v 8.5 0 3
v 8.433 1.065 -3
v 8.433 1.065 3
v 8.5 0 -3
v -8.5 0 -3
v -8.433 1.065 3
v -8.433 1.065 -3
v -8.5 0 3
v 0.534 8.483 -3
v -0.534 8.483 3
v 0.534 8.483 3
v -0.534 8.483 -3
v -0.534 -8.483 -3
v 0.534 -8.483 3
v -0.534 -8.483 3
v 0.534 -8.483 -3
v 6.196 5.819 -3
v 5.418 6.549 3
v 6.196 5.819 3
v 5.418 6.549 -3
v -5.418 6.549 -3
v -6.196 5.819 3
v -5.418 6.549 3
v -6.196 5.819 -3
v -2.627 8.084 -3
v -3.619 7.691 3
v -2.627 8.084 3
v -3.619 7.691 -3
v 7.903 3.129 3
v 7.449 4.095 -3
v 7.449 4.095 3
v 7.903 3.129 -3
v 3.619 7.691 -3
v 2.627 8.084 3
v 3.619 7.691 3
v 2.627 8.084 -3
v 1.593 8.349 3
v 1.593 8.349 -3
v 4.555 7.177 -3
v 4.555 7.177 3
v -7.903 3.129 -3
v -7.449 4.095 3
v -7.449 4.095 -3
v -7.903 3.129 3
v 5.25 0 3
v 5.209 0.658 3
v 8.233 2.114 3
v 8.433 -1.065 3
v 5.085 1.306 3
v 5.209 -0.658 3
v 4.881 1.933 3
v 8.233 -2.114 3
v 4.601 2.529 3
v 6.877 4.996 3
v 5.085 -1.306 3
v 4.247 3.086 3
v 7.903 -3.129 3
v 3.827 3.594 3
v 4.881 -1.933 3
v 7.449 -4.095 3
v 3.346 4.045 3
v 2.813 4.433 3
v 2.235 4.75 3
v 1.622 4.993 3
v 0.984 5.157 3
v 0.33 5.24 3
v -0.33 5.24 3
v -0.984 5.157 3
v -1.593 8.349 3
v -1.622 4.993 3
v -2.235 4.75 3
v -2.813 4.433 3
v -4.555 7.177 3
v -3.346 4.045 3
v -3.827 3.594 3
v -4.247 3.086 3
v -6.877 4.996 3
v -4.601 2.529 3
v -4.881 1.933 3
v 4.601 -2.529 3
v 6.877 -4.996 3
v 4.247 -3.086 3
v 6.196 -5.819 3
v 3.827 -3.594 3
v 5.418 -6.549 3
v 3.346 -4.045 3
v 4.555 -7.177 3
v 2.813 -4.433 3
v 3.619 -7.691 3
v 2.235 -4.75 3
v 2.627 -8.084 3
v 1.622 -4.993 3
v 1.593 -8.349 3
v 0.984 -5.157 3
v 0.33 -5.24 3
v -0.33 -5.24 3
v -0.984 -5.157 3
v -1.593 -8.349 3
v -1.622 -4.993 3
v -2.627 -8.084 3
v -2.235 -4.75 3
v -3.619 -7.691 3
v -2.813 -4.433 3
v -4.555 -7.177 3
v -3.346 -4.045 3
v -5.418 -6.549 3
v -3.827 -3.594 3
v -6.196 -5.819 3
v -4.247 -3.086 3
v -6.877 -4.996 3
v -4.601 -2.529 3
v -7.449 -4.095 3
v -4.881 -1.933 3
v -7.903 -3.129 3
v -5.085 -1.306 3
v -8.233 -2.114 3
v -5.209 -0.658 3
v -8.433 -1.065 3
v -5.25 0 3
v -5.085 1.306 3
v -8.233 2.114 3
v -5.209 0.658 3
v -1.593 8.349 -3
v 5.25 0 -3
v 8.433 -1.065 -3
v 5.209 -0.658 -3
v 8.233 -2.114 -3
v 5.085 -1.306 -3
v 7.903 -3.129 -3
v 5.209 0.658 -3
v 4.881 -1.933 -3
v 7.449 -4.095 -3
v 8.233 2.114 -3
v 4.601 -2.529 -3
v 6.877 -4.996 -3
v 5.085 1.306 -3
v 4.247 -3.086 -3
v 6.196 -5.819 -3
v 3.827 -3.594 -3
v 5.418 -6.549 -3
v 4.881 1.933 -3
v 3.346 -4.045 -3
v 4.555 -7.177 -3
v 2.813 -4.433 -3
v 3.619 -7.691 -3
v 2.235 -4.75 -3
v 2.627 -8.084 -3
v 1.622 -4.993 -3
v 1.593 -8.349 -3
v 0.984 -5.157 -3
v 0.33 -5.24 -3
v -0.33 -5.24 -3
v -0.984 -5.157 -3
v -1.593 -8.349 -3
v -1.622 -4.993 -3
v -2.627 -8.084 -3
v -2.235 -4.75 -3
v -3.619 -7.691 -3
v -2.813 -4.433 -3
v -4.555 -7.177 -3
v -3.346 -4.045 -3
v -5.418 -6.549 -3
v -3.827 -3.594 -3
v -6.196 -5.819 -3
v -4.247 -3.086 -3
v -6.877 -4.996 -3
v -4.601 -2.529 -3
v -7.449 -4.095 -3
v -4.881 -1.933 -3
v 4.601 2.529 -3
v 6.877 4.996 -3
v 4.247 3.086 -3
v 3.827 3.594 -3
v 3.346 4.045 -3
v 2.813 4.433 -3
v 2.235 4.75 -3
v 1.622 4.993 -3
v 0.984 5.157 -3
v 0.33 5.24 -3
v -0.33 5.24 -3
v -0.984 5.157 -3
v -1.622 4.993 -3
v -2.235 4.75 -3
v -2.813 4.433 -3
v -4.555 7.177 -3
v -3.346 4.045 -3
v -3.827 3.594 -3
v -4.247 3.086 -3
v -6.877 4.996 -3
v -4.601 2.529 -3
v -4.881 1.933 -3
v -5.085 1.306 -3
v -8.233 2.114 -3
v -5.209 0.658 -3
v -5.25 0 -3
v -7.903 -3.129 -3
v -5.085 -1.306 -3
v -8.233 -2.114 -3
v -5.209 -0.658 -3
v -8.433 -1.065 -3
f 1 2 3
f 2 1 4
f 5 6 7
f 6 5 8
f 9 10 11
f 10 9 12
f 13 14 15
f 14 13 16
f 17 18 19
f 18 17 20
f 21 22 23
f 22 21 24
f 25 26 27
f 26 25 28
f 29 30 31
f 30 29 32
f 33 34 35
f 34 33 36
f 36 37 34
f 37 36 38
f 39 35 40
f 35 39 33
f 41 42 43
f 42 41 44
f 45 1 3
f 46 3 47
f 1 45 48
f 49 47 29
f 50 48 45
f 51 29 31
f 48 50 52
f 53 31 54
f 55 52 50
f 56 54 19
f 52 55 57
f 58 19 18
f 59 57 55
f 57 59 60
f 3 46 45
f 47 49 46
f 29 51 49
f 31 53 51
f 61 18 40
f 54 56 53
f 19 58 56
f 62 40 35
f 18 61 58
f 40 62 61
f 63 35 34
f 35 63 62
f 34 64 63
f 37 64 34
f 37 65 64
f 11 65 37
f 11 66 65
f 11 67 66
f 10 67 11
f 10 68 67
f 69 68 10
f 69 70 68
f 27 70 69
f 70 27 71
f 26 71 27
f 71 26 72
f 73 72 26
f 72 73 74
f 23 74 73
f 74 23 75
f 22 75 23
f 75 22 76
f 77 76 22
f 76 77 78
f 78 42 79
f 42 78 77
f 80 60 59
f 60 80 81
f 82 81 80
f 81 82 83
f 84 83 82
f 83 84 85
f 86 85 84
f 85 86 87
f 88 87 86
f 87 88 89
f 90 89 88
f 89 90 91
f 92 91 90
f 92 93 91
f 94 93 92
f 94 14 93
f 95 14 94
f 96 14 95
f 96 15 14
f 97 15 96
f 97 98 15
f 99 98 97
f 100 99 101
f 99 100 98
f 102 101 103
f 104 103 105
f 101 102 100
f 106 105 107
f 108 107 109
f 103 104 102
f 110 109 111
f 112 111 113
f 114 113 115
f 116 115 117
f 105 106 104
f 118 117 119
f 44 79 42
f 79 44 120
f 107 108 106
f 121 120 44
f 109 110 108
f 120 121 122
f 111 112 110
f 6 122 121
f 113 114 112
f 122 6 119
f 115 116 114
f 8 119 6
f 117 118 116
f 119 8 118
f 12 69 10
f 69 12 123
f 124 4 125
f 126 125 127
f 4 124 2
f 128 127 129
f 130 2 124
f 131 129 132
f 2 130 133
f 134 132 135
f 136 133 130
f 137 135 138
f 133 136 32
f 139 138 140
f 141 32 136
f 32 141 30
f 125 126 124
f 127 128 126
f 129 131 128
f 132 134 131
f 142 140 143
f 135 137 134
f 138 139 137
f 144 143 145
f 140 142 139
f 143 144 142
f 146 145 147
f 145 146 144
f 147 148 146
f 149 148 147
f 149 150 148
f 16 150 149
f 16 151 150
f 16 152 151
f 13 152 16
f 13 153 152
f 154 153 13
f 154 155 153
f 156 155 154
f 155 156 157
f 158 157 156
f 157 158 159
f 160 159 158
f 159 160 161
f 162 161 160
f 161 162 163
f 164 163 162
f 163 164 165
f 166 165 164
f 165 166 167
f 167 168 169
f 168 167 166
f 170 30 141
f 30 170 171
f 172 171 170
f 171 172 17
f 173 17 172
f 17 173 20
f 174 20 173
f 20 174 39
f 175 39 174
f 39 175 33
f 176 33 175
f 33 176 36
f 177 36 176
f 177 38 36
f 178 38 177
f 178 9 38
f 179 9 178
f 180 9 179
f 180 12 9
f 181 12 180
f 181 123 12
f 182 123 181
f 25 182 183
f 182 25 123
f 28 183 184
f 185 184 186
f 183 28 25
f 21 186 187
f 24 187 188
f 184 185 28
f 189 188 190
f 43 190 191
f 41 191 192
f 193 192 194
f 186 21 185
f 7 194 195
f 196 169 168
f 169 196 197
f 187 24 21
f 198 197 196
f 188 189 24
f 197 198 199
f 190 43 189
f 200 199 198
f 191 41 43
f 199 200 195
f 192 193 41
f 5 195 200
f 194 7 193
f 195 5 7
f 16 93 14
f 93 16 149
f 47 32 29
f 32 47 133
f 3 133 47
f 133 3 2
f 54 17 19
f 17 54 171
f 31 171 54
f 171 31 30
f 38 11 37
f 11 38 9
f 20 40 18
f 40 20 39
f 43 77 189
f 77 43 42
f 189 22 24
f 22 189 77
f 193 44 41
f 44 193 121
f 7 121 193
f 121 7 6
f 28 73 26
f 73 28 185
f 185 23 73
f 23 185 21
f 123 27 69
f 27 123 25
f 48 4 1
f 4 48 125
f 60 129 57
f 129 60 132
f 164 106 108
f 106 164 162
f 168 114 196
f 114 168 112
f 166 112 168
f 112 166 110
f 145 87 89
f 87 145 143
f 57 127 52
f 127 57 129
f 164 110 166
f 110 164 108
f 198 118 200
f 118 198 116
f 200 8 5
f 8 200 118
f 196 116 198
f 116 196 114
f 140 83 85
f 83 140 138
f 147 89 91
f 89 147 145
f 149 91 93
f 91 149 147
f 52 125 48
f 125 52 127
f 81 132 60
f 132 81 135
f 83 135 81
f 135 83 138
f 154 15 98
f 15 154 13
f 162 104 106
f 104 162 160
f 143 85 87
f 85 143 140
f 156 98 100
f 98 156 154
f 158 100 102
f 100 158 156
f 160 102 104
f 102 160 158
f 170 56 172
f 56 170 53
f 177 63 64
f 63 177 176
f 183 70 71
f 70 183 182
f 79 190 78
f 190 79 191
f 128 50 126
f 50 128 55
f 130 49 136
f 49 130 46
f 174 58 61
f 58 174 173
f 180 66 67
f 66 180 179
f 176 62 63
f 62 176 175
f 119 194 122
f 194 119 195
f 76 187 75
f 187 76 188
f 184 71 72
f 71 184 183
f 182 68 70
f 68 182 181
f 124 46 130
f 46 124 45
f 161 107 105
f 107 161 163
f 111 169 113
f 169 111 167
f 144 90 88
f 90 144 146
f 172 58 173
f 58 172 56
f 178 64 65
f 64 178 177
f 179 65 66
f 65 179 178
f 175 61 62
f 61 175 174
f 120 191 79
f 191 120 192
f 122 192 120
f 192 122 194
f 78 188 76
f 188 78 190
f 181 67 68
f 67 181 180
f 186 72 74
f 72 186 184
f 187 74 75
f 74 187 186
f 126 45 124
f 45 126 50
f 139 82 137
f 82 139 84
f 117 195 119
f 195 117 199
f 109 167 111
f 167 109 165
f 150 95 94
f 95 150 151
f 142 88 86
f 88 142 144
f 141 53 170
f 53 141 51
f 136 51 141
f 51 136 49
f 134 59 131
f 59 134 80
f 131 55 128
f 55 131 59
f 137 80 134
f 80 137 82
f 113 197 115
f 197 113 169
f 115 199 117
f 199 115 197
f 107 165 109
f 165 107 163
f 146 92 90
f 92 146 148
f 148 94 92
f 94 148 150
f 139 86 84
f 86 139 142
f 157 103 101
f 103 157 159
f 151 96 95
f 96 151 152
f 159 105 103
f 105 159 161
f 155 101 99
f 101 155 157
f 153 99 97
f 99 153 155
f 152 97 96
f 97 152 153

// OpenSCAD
$fn = 50;


difference() {
	union() {
		translate(v = [0, 0, -3.0000000000]) {
			cylinder(h = 6, r = 8.5000000000);
		}
	}
	union() {
		translate(v = [0, 0, -100.0000000000]) {
			cylinder(h = 200, r = 5.2500000000);
		}
	}
}
